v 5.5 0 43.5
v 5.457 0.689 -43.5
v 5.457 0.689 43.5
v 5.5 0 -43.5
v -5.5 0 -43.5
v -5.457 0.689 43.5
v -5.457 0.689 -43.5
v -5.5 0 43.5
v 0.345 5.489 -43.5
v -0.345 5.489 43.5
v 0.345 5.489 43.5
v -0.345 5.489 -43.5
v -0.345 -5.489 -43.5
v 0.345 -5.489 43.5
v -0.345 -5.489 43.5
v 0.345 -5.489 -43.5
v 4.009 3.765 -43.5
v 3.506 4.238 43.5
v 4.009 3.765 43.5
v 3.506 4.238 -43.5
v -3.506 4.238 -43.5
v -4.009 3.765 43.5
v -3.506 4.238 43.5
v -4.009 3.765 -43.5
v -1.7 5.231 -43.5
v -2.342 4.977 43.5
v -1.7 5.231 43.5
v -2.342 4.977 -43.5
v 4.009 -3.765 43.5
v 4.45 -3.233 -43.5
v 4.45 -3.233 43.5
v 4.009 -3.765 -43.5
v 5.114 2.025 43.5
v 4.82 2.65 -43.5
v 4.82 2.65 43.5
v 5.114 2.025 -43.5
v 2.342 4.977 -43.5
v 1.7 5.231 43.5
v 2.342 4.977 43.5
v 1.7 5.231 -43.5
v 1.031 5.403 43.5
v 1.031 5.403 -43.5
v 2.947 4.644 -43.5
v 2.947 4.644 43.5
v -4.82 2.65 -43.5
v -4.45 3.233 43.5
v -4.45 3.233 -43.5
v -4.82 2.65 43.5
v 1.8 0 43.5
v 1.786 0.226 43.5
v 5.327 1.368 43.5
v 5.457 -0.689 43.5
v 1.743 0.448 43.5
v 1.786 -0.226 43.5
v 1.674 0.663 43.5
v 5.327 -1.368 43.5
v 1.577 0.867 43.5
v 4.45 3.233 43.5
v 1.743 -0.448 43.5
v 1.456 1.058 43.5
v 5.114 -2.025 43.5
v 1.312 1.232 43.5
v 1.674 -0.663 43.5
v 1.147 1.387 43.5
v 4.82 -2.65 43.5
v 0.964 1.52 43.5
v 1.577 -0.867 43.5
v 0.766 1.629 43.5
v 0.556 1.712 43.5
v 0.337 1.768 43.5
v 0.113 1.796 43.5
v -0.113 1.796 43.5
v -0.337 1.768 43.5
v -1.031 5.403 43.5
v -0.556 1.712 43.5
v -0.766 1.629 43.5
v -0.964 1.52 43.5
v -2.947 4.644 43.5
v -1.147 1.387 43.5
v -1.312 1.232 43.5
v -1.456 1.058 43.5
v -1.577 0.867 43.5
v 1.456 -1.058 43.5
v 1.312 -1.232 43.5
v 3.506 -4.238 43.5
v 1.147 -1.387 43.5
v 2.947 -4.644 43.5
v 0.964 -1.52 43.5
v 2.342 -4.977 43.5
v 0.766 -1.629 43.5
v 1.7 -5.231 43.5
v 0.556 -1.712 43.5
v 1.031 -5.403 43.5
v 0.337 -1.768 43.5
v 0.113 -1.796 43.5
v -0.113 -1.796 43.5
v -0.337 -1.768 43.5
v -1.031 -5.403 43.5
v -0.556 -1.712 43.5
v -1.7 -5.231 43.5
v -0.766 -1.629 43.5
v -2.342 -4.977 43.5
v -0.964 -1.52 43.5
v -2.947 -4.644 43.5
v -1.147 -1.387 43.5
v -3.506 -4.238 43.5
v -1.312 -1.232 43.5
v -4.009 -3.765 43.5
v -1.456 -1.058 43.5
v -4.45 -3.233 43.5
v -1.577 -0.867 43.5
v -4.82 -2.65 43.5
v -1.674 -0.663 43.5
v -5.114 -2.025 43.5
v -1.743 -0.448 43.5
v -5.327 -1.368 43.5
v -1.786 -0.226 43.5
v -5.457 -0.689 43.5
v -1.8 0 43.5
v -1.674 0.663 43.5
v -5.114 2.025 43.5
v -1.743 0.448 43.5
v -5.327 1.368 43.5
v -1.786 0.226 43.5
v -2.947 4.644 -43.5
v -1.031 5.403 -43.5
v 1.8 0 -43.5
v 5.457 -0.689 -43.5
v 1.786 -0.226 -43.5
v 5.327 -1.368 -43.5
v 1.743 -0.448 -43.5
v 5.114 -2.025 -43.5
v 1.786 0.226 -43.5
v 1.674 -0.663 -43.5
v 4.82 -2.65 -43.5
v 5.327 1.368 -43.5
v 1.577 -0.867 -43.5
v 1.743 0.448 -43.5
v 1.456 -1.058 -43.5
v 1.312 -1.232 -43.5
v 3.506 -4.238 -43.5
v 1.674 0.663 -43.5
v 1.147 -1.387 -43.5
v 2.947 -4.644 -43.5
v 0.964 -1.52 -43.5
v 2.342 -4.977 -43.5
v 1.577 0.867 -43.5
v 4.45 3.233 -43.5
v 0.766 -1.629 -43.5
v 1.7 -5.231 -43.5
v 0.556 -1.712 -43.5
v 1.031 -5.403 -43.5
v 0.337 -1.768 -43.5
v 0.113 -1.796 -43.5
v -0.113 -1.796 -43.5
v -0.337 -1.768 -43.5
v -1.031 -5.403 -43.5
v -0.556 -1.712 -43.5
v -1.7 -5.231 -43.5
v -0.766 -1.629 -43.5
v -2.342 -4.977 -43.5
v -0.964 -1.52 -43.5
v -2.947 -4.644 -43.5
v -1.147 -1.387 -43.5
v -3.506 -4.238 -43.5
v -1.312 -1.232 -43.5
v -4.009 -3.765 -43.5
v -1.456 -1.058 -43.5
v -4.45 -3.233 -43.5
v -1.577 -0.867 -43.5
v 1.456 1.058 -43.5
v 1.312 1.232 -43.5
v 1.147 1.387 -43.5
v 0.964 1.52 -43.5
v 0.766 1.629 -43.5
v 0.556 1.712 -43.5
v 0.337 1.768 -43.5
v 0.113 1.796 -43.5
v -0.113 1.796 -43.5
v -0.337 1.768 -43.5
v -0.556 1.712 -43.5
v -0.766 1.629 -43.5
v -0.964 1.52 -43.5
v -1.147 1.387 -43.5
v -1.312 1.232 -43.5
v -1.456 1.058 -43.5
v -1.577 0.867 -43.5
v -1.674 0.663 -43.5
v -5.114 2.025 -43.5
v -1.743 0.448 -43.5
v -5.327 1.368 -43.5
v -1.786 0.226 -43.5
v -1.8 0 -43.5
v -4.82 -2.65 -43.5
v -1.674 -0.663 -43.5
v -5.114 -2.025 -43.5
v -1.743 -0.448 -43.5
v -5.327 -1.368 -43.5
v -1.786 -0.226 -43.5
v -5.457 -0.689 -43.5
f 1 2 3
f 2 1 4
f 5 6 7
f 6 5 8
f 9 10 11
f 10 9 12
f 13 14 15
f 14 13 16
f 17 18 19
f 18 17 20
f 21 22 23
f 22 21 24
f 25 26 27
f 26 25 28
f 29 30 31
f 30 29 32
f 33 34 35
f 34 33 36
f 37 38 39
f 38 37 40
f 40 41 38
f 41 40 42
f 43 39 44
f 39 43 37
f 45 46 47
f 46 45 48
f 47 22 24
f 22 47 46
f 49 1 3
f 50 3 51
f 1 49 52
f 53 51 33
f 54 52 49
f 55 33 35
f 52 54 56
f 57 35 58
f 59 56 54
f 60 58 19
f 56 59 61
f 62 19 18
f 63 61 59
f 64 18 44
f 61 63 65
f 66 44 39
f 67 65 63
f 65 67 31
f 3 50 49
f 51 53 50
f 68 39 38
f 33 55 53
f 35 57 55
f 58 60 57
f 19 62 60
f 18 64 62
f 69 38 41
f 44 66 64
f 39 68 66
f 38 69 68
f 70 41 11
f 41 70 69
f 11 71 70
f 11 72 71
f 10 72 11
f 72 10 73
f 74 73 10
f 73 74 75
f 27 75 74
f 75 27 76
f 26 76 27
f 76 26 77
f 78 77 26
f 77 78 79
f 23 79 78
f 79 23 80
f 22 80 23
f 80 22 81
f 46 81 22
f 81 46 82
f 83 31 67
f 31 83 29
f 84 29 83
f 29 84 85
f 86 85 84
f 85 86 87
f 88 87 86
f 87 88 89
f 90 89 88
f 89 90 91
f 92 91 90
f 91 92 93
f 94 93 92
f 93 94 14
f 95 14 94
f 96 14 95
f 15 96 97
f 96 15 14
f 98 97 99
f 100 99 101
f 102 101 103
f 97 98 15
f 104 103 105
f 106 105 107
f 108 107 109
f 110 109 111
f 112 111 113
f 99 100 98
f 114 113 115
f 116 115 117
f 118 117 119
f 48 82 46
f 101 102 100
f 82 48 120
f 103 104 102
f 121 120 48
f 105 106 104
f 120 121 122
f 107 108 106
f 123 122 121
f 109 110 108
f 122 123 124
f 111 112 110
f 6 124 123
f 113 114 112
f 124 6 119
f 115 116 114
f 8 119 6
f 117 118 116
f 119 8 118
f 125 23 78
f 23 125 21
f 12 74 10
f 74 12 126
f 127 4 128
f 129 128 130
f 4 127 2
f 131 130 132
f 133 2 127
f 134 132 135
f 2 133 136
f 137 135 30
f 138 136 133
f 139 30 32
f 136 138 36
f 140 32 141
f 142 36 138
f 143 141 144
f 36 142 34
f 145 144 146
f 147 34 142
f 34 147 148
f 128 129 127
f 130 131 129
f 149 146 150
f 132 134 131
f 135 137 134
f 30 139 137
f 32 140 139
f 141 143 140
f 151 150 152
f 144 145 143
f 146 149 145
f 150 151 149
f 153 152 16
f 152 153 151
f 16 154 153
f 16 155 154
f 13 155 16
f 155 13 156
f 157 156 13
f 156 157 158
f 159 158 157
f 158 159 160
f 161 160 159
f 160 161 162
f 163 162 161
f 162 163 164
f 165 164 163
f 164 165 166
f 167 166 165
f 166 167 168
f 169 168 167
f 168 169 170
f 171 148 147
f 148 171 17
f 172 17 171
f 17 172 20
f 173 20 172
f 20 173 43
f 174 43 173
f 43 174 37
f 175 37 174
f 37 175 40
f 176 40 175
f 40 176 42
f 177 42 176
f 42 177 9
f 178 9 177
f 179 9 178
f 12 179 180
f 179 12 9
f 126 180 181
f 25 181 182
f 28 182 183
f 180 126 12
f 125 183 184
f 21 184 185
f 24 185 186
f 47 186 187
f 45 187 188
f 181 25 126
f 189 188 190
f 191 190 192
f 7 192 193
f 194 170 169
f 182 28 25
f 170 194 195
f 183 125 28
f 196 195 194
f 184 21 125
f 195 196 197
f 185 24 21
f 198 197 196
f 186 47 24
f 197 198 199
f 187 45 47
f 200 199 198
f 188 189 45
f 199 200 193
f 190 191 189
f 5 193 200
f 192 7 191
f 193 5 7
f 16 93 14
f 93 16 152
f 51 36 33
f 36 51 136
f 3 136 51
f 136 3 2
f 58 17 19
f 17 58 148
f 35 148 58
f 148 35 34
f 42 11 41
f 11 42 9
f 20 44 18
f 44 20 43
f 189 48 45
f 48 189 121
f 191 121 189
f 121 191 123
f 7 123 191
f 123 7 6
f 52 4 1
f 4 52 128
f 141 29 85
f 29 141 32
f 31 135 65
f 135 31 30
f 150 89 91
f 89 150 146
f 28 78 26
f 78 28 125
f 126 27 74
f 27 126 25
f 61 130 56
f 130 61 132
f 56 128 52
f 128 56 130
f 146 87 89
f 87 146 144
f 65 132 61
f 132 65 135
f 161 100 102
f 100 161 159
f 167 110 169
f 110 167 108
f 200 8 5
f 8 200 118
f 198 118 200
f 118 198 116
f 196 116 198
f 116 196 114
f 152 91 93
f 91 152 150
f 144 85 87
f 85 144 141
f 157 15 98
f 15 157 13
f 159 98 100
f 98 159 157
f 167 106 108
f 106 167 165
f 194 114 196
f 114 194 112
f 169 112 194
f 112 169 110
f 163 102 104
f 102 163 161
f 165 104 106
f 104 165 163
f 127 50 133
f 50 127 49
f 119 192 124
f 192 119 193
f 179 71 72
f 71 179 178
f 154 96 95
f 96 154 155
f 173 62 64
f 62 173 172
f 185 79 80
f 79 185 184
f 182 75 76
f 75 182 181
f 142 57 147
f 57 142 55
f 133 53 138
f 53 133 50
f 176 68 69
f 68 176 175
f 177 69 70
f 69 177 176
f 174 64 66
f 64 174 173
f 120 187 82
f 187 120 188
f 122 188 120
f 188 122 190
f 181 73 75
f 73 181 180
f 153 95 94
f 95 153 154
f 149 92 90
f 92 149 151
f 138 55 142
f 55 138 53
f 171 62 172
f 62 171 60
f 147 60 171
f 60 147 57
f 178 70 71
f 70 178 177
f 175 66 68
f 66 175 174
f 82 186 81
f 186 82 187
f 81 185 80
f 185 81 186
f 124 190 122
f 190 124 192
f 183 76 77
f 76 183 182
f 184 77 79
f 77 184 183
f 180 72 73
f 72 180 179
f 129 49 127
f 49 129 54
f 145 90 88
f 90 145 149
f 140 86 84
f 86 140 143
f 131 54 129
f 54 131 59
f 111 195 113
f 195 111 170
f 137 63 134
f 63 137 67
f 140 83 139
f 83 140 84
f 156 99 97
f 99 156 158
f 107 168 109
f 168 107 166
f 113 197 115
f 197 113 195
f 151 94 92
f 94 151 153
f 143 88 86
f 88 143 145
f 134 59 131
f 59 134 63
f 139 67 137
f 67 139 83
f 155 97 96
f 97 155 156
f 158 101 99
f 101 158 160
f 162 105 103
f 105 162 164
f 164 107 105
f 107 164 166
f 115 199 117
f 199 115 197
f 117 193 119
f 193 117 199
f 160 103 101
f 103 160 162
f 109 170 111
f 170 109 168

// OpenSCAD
$fn = 50;


difference() {
	union() {
		translate(v = [0, 0, -43.5000000000]) {
			cylinder(h = 87, r = 5.5000000000);
		}
	}
	union() {
		translate(v = [0, 0, -100.0000000000]) {
			cylinder(h = 200, r = 1.8000000000);
		}
	}
}
